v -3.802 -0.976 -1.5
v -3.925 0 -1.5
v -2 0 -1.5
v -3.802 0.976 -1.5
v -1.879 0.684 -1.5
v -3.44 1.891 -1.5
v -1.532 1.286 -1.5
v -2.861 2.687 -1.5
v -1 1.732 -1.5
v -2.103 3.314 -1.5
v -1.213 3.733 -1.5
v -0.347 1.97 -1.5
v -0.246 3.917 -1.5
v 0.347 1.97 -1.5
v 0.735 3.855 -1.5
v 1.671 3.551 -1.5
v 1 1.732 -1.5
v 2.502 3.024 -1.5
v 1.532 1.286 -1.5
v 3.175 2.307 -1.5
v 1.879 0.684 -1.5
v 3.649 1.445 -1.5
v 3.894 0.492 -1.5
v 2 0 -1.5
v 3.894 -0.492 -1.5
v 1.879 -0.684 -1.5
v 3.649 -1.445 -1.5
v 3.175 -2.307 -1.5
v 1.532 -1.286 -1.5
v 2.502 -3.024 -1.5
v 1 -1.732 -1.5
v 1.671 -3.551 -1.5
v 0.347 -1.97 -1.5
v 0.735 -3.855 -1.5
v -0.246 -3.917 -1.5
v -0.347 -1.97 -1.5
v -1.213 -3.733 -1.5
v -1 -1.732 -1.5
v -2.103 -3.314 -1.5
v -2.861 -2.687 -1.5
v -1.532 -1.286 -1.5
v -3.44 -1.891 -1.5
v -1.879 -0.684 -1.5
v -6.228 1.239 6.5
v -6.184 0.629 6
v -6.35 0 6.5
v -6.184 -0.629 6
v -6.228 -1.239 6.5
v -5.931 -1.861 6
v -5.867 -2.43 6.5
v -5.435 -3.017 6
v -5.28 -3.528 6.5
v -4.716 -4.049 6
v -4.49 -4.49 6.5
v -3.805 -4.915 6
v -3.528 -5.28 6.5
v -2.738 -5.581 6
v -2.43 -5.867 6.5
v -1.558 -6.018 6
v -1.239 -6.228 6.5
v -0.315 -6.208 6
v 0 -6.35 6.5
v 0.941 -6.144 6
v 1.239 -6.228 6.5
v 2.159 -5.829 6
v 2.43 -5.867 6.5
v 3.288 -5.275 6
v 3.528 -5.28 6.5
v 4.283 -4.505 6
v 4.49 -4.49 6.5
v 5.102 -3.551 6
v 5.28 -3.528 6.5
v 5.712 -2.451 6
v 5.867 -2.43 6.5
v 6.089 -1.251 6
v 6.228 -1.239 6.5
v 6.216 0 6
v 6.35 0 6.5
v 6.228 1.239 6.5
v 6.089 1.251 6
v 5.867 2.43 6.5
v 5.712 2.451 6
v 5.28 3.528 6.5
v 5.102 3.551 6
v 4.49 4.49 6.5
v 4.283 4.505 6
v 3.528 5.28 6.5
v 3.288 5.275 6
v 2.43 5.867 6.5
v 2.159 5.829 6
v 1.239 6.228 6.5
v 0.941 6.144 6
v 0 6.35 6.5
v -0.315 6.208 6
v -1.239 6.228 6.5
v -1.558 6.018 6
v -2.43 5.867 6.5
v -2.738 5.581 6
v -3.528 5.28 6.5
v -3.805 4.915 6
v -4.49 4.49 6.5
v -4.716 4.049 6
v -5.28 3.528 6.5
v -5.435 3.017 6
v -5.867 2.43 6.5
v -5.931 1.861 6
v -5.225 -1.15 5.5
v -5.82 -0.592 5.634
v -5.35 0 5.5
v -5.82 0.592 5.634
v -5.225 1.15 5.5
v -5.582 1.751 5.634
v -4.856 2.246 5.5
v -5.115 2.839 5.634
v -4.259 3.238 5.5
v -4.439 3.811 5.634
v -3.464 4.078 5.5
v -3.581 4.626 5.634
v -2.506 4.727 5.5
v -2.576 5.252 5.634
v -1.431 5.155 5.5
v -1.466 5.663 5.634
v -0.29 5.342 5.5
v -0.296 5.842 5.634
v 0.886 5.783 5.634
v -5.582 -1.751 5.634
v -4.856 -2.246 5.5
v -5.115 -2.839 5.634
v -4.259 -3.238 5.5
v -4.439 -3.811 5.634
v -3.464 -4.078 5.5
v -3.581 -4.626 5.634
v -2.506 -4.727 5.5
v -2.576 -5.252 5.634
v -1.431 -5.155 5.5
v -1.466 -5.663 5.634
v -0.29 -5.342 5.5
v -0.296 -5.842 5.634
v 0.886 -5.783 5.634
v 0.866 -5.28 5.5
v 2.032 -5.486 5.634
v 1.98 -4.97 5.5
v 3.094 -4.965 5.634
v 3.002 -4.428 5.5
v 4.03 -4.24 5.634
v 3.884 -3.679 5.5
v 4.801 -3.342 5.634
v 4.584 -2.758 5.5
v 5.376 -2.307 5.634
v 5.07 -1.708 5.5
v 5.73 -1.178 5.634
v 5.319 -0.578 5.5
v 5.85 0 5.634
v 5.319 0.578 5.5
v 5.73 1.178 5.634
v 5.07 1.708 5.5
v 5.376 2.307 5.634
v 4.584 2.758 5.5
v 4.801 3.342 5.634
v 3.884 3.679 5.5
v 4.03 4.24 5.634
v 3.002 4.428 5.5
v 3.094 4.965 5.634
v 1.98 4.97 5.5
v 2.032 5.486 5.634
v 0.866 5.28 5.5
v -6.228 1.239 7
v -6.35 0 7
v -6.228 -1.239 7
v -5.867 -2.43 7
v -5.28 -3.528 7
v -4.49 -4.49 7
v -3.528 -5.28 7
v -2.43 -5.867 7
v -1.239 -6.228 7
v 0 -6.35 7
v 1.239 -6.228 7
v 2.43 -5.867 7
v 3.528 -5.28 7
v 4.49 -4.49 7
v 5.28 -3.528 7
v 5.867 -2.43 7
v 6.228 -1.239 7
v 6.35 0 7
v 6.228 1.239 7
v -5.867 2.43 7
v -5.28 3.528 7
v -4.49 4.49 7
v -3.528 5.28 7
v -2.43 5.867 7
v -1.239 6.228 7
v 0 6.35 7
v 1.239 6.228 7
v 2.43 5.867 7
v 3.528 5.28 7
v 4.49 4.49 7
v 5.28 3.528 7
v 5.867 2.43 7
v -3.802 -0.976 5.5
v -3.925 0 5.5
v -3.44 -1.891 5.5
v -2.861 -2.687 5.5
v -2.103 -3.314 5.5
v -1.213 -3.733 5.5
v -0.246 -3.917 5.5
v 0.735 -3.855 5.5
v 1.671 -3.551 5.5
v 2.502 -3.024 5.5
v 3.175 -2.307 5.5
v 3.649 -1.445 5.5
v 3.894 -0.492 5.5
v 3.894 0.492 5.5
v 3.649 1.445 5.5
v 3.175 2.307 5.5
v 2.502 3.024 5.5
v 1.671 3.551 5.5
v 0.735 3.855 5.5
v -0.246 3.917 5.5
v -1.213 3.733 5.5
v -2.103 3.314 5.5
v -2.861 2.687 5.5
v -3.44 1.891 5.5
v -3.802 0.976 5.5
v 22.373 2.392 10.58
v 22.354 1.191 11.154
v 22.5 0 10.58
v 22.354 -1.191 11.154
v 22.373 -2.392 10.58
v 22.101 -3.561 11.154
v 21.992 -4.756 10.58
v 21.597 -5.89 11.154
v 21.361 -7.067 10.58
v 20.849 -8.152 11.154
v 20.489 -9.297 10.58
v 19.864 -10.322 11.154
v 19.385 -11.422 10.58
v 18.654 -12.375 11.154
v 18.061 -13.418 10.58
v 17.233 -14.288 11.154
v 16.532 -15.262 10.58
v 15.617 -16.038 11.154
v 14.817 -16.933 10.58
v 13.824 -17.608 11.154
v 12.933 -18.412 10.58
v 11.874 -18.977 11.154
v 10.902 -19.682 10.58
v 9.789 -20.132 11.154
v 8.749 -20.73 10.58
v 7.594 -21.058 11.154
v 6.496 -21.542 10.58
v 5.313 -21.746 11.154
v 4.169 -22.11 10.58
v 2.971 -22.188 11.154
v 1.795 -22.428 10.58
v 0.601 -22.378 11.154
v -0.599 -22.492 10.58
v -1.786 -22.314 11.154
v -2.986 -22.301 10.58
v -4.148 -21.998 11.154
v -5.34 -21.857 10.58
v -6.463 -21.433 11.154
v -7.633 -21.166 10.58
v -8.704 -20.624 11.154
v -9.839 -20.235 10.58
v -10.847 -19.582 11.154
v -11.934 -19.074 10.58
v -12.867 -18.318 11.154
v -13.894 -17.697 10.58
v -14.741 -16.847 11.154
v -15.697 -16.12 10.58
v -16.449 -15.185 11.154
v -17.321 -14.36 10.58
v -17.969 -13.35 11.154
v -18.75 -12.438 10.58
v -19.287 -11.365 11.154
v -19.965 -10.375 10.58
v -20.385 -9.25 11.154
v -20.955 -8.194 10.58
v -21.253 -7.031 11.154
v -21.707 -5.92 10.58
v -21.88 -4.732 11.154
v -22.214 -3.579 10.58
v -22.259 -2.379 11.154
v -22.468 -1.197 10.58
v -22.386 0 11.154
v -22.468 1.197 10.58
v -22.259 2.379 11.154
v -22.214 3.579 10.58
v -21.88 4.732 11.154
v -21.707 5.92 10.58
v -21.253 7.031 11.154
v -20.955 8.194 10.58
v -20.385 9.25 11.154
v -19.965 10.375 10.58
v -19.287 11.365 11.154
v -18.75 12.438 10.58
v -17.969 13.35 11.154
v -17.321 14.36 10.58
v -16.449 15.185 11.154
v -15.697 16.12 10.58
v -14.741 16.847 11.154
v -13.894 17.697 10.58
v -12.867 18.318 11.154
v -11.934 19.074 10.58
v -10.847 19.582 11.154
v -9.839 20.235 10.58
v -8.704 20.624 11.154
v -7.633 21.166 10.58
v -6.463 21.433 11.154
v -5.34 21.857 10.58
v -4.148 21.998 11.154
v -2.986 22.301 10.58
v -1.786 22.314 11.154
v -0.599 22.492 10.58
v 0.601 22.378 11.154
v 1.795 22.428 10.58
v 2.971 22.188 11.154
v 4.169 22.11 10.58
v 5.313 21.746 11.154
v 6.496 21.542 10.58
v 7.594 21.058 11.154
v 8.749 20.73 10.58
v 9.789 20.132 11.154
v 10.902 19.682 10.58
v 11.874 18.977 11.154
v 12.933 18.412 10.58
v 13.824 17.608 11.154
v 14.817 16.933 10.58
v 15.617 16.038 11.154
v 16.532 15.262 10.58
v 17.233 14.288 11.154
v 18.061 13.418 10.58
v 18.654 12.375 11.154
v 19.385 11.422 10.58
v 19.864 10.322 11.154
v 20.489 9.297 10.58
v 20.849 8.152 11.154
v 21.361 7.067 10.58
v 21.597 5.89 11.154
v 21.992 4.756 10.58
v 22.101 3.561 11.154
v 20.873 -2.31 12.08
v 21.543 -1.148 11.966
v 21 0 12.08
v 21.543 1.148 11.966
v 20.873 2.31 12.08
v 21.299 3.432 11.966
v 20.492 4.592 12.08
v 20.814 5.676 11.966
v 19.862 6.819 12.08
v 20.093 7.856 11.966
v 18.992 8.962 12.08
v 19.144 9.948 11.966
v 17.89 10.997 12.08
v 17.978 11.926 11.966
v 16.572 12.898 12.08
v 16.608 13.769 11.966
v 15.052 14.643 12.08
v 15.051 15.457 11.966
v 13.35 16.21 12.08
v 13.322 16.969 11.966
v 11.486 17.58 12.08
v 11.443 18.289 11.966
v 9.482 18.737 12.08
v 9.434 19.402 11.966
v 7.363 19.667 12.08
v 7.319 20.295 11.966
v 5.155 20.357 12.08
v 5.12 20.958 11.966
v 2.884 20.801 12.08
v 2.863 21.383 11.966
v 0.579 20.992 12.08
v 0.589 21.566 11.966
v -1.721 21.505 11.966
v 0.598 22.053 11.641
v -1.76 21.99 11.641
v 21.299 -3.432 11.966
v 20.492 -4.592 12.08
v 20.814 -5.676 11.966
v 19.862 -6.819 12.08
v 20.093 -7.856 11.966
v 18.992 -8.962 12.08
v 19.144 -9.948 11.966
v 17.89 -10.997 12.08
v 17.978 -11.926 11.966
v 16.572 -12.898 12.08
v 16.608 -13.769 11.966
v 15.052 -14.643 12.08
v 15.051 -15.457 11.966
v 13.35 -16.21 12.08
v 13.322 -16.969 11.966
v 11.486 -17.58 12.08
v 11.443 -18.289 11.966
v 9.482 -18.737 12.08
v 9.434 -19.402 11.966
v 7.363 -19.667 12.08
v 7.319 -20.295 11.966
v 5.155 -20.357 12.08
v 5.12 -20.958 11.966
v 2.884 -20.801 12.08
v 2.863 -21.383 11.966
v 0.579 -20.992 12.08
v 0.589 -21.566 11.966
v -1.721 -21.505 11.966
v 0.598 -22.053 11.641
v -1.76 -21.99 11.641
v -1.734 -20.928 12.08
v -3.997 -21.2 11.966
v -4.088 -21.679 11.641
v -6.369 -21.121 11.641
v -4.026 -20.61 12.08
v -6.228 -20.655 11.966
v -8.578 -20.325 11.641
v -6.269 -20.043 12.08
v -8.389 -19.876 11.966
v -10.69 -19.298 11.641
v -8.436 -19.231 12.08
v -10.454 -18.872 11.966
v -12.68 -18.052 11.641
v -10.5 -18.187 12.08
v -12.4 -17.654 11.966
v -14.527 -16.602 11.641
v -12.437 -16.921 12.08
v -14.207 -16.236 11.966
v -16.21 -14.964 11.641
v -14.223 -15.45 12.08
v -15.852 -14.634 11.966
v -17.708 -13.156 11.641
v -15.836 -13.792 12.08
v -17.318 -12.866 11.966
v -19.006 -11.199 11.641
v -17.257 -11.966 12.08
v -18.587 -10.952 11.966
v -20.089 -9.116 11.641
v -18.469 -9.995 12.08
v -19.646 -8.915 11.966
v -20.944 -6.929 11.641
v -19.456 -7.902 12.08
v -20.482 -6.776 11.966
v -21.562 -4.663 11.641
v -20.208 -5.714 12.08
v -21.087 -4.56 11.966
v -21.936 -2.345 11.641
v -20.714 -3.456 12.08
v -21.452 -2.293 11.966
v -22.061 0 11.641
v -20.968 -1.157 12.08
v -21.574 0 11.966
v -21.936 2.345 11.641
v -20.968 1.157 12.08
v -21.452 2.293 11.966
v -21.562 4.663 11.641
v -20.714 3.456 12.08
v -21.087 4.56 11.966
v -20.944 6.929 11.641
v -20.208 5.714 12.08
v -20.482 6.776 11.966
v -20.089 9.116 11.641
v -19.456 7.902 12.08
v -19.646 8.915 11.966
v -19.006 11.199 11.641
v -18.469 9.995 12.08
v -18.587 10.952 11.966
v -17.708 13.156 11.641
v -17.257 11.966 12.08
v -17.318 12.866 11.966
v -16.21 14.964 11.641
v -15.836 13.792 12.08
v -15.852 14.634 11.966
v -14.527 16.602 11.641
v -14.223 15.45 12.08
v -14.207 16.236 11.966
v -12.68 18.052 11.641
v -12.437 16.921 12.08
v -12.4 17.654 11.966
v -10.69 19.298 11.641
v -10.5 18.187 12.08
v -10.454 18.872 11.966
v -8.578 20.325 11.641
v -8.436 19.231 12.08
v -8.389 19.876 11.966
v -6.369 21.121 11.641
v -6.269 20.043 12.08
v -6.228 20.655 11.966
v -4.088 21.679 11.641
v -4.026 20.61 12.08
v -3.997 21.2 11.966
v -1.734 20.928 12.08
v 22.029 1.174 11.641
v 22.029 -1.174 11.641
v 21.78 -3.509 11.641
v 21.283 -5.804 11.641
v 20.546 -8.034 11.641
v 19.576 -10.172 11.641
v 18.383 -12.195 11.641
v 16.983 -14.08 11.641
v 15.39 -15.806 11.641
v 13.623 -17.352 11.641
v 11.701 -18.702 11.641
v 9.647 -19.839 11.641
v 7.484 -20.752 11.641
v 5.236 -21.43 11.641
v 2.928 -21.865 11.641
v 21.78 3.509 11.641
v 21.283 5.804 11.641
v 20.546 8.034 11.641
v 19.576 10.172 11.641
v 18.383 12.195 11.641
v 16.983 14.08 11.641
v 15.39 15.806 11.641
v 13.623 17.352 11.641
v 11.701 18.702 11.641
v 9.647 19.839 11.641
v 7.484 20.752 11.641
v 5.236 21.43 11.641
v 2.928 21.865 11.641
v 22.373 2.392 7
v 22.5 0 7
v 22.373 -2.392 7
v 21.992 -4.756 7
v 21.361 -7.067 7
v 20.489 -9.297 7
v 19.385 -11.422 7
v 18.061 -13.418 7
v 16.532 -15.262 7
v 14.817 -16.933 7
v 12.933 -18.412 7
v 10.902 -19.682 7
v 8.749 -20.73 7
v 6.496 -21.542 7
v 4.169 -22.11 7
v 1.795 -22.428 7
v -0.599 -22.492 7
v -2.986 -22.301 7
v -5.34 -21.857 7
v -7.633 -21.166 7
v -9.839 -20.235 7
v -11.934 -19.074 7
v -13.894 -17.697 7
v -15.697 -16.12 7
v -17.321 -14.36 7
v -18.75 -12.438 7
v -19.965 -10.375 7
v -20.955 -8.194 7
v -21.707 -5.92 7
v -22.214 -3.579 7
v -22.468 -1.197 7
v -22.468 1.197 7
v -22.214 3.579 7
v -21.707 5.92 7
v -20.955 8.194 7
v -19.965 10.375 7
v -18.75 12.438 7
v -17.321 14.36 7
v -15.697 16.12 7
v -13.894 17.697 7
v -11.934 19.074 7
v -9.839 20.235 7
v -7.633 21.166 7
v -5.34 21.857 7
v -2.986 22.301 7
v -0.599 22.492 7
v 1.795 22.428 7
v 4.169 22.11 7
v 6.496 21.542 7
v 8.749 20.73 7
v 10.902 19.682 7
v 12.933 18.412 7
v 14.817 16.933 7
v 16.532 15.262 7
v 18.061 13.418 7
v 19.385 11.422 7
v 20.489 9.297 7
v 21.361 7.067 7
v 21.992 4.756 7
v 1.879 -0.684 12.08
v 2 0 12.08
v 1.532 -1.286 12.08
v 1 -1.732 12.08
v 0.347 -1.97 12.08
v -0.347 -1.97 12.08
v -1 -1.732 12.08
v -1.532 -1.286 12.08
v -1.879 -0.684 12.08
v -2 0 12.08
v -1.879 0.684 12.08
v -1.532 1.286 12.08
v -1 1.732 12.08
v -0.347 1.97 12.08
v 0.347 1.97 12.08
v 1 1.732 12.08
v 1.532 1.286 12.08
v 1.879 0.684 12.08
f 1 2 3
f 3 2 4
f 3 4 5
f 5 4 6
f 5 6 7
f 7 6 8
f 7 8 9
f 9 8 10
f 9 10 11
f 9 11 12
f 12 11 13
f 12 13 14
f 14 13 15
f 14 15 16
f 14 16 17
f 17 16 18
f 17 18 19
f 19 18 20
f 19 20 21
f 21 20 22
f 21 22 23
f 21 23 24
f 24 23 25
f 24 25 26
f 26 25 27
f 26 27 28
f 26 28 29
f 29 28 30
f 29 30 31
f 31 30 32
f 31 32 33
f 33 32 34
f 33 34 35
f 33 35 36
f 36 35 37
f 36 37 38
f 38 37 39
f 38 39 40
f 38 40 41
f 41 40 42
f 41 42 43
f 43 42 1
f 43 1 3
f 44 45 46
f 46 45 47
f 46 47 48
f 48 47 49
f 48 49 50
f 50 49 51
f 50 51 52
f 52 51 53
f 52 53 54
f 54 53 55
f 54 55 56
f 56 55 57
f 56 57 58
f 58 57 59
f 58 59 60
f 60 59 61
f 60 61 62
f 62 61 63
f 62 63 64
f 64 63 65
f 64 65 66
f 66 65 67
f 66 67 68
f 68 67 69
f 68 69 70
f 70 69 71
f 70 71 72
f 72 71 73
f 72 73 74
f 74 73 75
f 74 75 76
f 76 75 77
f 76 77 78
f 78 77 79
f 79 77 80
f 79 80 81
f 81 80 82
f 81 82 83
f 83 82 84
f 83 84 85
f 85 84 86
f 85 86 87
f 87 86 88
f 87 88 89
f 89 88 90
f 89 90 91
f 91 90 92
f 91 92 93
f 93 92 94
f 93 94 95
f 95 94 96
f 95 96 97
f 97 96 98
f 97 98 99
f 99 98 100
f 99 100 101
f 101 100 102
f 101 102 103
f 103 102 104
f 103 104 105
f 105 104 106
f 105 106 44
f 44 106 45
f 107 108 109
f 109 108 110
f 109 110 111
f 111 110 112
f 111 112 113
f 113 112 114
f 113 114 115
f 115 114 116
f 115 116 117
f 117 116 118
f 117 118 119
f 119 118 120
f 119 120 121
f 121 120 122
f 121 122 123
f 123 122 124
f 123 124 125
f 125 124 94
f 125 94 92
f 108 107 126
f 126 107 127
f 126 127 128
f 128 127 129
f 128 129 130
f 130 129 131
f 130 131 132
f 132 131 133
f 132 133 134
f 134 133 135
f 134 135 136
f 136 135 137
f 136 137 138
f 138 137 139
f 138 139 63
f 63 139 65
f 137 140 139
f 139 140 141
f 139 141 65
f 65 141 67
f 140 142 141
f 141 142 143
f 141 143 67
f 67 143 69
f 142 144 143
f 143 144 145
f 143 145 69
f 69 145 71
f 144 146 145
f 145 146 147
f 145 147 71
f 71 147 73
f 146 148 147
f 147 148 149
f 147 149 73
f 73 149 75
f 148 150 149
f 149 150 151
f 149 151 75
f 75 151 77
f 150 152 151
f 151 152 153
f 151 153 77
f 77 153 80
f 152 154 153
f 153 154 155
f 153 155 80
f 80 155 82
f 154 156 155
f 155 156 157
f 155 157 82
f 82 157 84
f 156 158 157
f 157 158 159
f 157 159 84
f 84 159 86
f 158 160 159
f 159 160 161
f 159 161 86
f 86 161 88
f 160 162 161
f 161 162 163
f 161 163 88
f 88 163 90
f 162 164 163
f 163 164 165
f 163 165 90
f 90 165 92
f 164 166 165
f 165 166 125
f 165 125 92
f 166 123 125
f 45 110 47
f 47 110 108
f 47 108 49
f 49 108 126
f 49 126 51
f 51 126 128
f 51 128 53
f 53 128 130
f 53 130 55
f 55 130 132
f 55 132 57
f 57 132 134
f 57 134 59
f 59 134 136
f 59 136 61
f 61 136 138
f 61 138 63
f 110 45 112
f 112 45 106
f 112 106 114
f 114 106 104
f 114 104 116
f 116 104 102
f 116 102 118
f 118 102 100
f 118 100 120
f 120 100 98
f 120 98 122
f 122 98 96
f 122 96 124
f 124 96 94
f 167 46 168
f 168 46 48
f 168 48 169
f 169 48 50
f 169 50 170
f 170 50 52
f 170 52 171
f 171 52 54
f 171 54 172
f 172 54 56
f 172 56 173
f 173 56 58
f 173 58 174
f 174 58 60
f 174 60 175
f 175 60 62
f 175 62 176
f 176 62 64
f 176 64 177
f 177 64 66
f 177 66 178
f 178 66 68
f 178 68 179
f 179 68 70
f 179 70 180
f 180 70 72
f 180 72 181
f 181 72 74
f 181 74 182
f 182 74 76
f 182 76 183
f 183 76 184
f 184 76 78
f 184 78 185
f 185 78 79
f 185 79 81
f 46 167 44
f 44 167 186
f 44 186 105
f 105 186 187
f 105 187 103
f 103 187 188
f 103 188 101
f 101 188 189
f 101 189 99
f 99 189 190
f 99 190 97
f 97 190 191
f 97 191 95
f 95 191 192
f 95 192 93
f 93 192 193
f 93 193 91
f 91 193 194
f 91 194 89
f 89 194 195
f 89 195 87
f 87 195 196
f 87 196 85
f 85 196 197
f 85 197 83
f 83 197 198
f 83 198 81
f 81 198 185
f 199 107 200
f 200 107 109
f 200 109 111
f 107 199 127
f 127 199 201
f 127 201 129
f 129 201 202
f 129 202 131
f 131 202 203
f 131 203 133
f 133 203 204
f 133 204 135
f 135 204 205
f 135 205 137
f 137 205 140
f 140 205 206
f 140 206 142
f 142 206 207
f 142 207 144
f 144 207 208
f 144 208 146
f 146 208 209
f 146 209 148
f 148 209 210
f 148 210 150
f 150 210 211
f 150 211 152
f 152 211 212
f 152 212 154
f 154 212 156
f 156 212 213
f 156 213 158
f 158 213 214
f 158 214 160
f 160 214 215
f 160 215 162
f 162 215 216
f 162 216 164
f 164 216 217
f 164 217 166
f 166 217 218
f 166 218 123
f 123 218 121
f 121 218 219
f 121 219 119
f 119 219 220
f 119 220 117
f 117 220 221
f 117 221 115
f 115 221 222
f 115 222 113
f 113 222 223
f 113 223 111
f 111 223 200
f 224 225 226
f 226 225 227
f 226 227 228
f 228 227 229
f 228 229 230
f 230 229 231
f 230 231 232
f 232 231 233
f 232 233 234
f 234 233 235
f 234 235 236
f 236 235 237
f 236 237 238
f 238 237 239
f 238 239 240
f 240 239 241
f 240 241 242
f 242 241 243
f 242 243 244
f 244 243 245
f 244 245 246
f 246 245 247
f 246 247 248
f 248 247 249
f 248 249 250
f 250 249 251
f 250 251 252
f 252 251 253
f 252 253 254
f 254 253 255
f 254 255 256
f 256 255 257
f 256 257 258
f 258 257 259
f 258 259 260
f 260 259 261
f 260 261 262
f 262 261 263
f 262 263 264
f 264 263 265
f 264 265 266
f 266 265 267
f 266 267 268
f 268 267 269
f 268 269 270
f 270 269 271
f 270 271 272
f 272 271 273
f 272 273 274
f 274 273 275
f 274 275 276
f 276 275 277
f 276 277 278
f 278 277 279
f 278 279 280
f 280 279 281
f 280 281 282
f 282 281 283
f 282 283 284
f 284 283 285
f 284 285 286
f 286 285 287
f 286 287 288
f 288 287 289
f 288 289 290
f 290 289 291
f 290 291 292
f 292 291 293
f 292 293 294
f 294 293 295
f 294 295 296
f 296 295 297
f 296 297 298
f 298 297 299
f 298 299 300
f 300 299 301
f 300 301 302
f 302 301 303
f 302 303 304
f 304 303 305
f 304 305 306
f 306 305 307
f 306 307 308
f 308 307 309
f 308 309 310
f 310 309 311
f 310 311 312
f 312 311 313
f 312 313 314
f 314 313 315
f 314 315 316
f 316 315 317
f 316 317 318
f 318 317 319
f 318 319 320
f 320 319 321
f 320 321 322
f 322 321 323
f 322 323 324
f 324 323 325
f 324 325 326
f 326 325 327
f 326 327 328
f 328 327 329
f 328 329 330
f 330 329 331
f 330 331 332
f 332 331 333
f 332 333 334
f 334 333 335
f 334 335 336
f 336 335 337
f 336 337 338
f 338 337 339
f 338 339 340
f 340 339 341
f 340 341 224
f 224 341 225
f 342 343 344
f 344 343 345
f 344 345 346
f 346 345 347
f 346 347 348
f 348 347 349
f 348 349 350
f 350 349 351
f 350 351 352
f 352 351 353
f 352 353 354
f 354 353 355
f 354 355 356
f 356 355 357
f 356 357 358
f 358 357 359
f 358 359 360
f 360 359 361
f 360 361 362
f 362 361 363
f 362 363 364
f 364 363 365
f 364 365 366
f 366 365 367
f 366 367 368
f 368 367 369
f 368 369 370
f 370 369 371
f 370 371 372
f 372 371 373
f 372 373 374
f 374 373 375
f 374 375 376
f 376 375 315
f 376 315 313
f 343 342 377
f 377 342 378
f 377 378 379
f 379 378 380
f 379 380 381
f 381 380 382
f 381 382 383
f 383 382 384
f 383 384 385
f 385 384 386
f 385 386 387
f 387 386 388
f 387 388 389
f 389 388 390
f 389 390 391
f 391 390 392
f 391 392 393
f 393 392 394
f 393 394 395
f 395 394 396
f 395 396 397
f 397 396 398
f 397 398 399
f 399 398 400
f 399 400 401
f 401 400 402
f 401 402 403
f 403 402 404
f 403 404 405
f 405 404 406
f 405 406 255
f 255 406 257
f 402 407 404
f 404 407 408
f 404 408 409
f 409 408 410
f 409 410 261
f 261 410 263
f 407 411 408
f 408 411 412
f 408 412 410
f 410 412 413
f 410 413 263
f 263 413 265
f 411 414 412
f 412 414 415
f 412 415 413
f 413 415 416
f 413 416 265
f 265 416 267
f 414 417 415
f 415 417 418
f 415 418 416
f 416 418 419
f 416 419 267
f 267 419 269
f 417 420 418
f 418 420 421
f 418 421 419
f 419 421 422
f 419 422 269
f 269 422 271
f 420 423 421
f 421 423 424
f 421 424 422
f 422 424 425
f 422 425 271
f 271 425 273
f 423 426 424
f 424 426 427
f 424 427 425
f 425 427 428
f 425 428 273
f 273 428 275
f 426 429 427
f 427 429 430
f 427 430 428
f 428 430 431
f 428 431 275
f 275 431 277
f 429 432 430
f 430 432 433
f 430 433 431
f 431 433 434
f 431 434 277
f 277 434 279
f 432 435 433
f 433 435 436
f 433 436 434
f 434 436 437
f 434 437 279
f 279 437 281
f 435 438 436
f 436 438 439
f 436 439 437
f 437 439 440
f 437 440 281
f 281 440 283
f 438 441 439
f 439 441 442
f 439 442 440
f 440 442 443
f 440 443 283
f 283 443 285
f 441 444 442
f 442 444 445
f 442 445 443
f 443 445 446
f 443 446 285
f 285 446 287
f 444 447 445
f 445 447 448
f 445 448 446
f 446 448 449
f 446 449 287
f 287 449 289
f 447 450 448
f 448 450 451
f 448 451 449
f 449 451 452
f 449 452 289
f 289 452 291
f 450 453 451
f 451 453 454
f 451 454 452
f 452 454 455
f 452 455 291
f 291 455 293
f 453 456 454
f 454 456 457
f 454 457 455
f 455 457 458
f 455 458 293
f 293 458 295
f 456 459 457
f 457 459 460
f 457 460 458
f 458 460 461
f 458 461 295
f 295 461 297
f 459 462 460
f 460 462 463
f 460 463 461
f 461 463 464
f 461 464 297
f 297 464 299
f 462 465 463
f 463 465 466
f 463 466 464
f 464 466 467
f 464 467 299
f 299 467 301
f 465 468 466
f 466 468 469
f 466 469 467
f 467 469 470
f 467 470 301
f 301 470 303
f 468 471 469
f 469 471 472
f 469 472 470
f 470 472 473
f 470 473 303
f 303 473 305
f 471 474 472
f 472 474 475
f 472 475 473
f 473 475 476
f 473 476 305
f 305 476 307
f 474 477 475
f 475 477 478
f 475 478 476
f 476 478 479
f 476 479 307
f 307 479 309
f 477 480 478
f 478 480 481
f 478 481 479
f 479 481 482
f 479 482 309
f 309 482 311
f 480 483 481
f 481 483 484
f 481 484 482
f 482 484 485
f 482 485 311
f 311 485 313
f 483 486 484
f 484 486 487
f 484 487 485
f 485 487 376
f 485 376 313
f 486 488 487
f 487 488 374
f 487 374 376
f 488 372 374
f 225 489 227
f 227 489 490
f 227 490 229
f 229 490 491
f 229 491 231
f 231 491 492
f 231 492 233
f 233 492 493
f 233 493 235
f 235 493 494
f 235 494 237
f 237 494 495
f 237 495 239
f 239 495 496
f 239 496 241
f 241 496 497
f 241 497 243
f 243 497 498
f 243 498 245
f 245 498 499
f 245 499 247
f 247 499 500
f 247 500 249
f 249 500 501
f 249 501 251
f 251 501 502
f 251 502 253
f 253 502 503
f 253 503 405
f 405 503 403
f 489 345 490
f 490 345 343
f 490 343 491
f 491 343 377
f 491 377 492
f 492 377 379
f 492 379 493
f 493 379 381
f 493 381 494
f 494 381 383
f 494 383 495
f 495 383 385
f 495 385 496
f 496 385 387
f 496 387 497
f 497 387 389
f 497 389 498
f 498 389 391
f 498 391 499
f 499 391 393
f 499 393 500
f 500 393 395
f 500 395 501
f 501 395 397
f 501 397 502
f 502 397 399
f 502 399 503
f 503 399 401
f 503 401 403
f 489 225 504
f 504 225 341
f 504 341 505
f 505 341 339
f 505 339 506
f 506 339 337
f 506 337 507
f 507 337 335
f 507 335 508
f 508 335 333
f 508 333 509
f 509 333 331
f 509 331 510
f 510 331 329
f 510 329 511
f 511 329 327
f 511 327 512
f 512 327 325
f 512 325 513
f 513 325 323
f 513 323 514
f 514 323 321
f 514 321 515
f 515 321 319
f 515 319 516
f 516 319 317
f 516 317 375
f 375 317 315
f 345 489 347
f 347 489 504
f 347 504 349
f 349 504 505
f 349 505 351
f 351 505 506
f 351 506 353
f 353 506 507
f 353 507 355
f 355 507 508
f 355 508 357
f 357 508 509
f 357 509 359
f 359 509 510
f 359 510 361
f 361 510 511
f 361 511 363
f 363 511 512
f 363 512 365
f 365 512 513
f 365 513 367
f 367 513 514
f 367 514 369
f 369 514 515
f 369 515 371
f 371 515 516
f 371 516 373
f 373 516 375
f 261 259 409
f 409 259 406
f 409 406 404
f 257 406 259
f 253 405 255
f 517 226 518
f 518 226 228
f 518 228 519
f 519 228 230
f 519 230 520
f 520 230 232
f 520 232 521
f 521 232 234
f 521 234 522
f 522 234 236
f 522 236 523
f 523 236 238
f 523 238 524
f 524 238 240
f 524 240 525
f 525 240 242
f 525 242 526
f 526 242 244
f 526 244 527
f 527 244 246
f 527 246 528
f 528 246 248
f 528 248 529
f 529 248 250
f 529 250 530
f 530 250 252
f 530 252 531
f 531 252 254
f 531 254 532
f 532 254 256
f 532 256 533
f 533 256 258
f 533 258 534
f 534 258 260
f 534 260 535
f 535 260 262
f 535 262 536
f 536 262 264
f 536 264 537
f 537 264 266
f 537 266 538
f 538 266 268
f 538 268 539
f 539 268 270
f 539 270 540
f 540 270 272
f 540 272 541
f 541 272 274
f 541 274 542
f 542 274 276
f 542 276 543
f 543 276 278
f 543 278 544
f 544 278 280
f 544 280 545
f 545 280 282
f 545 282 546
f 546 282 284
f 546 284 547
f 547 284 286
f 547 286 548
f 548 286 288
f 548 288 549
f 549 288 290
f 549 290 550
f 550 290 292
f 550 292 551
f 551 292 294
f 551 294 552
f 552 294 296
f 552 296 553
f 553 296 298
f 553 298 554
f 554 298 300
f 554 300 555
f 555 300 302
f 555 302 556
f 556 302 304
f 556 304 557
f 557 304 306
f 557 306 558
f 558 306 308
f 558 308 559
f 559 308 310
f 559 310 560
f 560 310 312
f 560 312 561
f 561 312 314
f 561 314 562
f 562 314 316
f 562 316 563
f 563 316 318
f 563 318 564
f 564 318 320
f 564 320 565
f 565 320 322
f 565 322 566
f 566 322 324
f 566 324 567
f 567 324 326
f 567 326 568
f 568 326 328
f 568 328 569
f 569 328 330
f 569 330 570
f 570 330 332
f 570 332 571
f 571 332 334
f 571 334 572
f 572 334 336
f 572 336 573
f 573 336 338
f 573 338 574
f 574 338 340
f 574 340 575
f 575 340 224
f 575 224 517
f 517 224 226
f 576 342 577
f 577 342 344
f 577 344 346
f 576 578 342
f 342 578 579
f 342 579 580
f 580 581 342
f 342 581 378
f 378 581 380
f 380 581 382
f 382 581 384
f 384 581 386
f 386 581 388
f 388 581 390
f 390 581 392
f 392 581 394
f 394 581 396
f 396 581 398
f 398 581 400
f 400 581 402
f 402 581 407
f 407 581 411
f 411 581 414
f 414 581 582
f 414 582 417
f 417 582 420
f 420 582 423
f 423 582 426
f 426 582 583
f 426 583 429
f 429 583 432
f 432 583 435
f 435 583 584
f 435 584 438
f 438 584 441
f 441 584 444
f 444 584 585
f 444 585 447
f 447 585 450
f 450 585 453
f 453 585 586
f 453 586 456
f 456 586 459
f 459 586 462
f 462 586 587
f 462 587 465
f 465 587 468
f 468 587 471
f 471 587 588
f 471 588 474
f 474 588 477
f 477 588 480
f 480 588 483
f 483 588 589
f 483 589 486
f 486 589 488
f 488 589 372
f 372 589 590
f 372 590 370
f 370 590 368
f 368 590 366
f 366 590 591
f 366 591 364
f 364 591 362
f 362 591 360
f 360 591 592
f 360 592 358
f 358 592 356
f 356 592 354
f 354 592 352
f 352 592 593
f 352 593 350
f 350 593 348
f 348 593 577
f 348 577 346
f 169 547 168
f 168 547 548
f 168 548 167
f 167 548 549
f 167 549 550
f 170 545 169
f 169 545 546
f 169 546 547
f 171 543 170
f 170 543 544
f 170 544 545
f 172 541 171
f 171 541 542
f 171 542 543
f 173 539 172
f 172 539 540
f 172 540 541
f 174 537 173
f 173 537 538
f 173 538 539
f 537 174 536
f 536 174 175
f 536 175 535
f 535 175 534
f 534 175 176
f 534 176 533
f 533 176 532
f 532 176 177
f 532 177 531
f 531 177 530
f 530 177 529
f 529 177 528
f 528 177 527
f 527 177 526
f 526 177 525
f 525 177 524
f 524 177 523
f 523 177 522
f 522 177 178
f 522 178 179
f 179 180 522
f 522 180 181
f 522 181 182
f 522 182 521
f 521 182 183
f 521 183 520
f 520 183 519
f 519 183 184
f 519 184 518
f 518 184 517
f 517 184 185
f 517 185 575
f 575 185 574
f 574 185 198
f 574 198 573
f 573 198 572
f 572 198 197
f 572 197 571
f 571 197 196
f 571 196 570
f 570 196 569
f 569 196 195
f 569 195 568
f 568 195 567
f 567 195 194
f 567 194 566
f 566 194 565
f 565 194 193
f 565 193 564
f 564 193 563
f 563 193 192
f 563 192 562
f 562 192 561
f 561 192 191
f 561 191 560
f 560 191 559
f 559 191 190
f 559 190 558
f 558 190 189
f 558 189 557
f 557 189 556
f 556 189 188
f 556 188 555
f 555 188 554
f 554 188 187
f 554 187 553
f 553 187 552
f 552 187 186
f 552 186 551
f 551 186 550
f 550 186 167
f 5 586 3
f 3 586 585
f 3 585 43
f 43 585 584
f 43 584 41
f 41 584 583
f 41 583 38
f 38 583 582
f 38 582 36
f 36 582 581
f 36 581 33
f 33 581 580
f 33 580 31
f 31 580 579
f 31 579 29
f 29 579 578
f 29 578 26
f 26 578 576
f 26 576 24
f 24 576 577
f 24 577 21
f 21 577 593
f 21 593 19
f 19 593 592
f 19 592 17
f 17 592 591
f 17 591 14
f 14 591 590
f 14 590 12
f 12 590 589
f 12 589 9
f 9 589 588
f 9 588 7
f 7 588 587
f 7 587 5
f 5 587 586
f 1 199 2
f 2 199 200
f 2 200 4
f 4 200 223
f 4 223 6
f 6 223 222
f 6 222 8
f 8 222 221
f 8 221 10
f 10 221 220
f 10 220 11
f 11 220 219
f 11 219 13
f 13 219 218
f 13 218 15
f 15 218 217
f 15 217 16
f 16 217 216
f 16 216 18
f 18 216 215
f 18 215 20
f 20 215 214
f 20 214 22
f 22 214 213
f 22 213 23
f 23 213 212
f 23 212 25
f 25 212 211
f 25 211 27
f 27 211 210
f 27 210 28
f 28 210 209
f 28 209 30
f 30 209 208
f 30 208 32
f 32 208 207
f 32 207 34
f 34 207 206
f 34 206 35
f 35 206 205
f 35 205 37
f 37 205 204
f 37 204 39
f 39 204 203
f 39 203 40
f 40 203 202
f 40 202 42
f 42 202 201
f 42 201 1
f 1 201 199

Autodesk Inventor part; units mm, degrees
ref_plane "YZ Plane" through (0, 0, 0) normal (1, 0, 0) x (0, 1, 0)
ref_plane "XZ Plane" through (0, 0, 0) normal (0, 1, 0) x (-1, 0, 0)
ref_plane "XY Plane" through (0, 0, 0) normal (0, 0, 1) x (1, 0, 0)
sketch "Sketch1" plane through (0, 0, 0) normal (0, 0, 1) x (1, 0, 0)
  circle A0 centre (0, 0) radius 3.925
  circle A1 centre (0, 0) radius 2
  dimension "d0" = 7.85
  dimension "d1" = 4
extrude "Extrusion1" add sketch "Sketch1" along normal blind 7
sketch "Sketch2" plane through (0, 0, 7) normal (0, 0, 1) x (1, 0, 0)
  circle A0 centre (0, 0) radius 22.5
  circle A1 centre (0, 0) radius 2 projected
  dimension "d4" = 45
extrude "Extrusion2" add sketch "Sketch2" along normal blind 5.08
fillet "Fillet1" radius 1.5 1 edges at (-22.5, 0, 12.08)
sketch "Sketch4" plane through (0, 0, 7) normal (0, 0, -1) x (-1, 0, 0)
  circle A0 centre (0, 0) radius 3.925
  circle A1 centre (0, 0) radius 6.35
  dimension "d10" = 12.7
extrude "Extrusion4" add sketch "Sketch4" along normal blind 1.5
sketch "Sketch5" plane through (0, 0, 0) normal (0, 0, -1) x (-1, 0, 0)
  circle A0 centre (0, 0) radius 3.925 projected
  circle A1 centre (0, 0) radius 2 projected
fillet "Fillet2" radius 1 1 edges at (6.35, 0, 5.5)
extrude "Extrusion5" add sketch "Sketch5" along normal blind 1.5
properties part number "wheel_mrrover"
